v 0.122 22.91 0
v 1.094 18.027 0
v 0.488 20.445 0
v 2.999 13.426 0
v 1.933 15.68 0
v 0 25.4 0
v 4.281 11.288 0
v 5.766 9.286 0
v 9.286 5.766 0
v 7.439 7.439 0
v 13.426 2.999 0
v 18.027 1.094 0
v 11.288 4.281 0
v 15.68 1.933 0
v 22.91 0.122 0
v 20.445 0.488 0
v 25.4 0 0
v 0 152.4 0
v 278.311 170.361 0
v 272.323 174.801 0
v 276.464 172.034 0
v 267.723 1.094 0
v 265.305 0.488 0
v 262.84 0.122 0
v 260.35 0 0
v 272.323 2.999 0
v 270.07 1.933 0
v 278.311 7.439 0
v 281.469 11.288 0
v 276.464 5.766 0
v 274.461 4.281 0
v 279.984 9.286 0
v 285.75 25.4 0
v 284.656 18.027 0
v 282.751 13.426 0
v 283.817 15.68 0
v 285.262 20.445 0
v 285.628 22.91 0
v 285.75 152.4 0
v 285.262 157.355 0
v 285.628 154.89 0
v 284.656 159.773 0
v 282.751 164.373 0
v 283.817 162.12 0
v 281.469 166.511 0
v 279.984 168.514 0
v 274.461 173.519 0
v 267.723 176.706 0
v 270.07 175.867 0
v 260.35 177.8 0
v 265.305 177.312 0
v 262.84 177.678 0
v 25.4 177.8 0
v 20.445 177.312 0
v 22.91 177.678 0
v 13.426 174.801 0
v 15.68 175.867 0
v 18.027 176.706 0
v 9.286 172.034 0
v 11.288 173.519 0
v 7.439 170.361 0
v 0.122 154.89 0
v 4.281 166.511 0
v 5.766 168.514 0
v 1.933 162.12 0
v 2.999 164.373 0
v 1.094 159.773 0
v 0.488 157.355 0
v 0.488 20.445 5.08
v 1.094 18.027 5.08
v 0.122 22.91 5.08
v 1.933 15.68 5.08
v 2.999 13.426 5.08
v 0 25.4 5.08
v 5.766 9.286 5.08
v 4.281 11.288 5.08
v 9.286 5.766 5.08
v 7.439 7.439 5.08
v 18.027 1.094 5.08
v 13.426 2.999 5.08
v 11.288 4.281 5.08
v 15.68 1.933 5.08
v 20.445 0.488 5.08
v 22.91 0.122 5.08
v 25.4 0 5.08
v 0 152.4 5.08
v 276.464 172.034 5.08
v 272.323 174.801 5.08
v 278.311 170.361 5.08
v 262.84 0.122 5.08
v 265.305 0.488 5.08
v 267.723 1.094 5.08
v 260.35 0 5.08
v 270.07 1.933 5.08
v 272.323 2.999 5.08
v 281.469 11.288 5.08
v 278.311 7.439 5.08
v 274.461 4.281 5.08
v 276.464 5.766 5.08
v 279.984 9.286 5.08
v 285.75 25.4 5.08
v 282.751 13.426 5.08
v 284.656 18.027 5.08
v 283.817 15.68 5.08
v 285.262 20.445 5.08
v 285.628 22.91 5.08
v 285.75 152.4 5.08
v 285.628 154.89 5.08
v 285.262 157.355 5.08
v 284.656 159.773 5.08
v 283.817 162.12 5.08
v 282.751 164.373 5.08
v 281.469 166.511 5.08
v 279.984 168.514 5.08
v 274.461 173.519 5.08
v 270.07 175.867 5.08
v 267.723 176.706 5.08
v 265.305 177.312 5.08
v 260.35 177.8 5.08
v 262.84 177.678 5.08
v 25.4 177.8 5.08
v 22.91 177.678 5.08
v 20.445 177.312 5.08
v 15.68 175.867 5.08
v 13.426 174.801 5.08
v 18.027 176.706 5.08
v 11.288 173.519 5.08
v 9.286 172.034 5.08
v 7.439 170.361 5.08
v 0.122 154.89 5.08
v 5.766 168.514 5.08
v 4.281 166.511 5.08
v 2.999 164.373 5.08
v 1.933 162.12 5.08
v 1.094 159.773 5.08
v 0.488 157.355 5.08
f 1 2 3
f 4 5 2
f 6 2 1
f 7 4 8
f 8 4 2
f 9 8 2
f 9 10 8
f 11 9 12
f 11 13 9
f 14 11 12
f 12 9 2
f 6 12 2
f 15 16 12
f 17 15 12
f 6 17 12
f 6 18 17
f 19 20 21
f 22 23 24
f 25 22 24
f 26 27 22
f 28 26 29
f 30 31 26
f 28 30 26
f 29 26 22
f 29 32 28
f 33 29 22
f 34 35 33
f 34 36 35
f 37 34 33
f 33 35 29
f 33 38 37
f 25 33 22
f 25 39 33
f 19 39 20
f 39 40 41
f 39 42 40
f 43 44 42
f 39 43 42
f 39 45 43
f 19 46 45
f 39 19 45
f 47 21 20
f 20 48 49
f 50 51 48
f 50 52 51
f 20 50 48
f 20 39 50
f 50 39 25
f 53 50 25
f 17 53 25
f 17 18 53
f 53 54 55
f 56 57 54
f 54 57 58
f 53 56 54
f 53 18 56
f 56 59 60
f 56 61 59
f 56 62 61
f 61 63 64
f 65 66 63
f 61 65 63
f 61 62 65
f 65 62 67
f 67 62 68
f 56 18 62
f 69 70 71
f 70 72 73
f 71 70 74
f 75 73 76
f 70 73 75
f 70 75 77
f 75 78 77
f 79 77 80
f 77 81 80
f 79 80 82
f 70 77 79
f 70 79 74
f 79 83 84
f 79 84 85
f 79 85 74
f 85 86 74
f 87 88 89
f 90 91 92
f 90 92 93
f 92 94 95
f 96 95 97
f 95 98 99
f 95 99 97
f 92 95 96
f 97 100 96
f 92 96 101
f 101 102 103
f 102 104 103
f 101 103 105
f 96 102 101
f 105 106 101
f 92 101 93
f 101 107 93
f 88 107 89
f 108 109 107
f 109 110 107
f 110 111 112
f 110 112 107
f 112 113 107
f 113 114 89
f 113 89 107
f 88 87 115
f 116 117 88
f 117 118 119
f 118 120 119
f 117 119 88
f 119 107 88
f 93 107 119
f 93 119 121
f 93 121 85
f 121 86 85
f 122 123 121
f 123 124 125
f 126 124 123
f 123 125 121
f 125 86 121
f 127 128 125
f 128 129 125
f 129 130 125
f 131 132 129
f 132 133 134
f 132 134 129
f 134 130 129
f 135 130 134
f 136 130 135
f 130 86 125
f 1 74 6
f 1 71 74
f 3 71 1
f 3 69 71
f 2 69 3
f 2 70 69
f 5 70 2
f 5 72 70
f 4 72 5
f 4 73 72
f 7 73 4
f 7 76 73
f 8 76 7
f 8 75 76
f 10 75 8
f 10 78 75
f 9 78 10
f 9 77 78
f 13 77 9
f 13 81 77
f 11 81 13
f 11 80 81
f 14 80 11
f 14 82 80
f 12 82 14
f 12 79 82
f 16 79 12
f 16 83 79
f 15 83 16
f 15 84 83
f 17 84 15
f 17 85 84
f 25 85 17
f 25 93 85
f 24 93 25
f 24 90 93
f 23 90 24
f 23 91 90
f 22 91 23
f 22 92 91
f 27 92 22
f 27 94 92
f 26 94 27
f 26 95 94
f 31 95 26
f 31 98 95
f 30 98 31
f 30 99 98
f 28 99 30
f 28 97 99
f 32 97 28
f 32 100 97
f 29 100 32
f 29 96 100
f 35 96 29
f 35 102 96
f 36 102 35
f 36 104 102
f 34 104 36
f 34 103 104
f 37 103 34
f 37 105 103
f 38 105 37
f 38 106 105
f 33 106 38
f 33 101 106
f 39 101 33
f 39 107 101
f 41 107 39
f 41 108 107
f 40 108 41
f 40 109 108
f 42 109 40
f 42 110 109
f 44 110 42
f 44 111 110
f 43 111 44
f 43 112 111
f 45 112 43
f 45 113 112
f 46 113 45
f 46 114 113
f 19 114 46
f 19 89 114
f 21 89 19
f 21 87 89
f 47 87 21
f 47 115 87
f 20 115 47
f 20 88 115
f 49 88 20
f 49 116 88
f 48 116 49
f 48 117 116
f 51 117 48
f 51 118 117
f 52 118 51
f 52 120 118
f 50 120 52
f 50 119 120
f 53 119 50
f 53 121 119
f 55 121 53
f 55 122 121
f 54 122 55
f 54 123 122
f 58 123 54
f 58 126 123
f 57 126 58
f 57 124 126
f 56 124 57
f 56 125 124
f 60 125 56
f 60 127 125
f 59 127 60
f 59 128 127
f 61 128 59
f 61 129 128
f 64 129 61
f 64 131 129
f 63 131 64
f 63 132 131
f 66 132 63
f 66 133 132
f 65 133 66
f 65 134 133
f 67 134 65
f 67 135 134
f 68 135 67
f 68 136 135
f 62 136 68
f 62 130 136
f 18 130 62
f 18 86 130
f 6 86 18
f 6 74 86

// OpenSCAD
// file: model-forge/model-forge/tray.scad
// model-forge/tray.scad — rounded-corner outer panel with a recessed
// inset pocket (e.g. a "cooking dish" recess): a raised rim around the
// edge, floor thickness under the pocket, and an optional thin lip
// flange around the base — sized to slide into a support-rail groove
// (like the wooden rails inside the real Tiny Land oven cavity) rather
// than just resting loose.
//
//   use <model-forge/tray.scad>
//   rounded_tray(outer_width=285.75, outer_height=228.6, corner_radius=25.4,
//                floor_thickness=5.08, rim_height=3.81, inset_margin=6.35,
//                lip_width=3, lip_thickness=2);
//
// Shape: outer_width x outer_height slab, rounded corners (corner_radius),
// total height = floor_thickness + rim_height. A pocket is cut from the
// top, inset_margin in from every edge, cutting down through rim_height
// and stopping at floor_thickness from the bottom — so floor_thickness is
// what's left under the pocket, rim_height is how tall the surrounding
// wall stands above the pocket floor.
//
// The lip (lip_width/lip_thickness) is a thin flange at the TOP of the
// rim (from total_height-lip_thickness to total_height), sticking out
// lip_width beyond the main body on every side — corrected 2026-09-11
// per feedback on the real rail photo: the groove is near the top of the
// cavity wall, not the bottom. Both default to 0 (no lip) so existing
// calls keep working unchanged.

// hull-of-4-circles rounded rect — much faster to render than a
// minkowski-based approach for this shape (no minkowski sum needed).
module rounded_rect_2d(w, h, r) {
  hull() {
    translate([r, r]) circle(r = r, $fn = 64);
    translate([w - r, r]) circle(r = r, $fn = 64);
    translate([r, h - r]) circle(r = r, $fn = 64);
    translate([w - r, h - r]) circle(r = r, $fn = 64);
  }
}

module rounded_tray(
  outer_width,
  outer_height,
  corner_radius,
  floor_thickness,
  rim_height,
  inset_margin,
  lip_width = 0,
  lip_thickness = 0
) {
  total_height = floor_thickness + rim_height;

  union() {
    if (lip_width > 0 && lip_thickness > 0) {
      translate([-lip_width, -lip_width, total_height - lip_thickness])
        linear_extrude(height = lip_thickness)
          rounded_rect_2d(outer_width + 2 * lip_width, outer_height + 2 * lip_width, corner_radius + lip_width);
    }
    difference() {
      linear_extrude(height = total_height)
        rounded_rect_2d(outer_width, outer_height, corner_radius);
      translate([inset_margin, inset_margin, floor_thickness])
        cube([outer_width - 2 * inset_margin, outer_height - 2 * inset_margin, rim_height + 1]);
    }
  }
}
// file: model-forge/board.scad
// model-forge/board.scad — a plain flat rounded-corner board. The
// original Tiny Land shelves are just flat rectangular wood pieces; this
// is the same idea with rounded corners (the "upgrade") instead of sharp
// ones, driven by a single explicit thickness parameter.
//
//   use <model-forge/board.scad>
//   rounded_board(outer_width=285.75, outer_height=177.8, corner_radius=25.4, thickness=3);
use <model-forge/tray.scad> // rounded_rect_2d

module rounded_board(outer_width, outer_height, corner_radius, thickness) {
  linear_extrude(height = thickness)
    rounded_rect_2d(outer_width, outer_height, corner_radius);
}
// main file
// Tiny Land fridge rack — plain flat rounded board, the "upgrade" on the
// original playset's flat wood shelves. Standalone, printable file.
// View > Show Customizer for sliders.
use <model-forge/board.scad>

/* [Size — inches] */
outer_width_in   = 11.25;
outer_height_in  = 7;
corner_radius_in = 1;

/* [Thickness] */
thickness_mm = 5.08; // [1:0.1:15]  settable independently

IN_TO_MM = 25.4;

rounded_board(
  outer_width   = outer_width_in * IN_TO_MM,
  outer_height  = outer_height_in * IN_TO_MM,
  corner_radius = corner_radius_in * IN_TO_MM,
  thickness     = thickness_mm
);
